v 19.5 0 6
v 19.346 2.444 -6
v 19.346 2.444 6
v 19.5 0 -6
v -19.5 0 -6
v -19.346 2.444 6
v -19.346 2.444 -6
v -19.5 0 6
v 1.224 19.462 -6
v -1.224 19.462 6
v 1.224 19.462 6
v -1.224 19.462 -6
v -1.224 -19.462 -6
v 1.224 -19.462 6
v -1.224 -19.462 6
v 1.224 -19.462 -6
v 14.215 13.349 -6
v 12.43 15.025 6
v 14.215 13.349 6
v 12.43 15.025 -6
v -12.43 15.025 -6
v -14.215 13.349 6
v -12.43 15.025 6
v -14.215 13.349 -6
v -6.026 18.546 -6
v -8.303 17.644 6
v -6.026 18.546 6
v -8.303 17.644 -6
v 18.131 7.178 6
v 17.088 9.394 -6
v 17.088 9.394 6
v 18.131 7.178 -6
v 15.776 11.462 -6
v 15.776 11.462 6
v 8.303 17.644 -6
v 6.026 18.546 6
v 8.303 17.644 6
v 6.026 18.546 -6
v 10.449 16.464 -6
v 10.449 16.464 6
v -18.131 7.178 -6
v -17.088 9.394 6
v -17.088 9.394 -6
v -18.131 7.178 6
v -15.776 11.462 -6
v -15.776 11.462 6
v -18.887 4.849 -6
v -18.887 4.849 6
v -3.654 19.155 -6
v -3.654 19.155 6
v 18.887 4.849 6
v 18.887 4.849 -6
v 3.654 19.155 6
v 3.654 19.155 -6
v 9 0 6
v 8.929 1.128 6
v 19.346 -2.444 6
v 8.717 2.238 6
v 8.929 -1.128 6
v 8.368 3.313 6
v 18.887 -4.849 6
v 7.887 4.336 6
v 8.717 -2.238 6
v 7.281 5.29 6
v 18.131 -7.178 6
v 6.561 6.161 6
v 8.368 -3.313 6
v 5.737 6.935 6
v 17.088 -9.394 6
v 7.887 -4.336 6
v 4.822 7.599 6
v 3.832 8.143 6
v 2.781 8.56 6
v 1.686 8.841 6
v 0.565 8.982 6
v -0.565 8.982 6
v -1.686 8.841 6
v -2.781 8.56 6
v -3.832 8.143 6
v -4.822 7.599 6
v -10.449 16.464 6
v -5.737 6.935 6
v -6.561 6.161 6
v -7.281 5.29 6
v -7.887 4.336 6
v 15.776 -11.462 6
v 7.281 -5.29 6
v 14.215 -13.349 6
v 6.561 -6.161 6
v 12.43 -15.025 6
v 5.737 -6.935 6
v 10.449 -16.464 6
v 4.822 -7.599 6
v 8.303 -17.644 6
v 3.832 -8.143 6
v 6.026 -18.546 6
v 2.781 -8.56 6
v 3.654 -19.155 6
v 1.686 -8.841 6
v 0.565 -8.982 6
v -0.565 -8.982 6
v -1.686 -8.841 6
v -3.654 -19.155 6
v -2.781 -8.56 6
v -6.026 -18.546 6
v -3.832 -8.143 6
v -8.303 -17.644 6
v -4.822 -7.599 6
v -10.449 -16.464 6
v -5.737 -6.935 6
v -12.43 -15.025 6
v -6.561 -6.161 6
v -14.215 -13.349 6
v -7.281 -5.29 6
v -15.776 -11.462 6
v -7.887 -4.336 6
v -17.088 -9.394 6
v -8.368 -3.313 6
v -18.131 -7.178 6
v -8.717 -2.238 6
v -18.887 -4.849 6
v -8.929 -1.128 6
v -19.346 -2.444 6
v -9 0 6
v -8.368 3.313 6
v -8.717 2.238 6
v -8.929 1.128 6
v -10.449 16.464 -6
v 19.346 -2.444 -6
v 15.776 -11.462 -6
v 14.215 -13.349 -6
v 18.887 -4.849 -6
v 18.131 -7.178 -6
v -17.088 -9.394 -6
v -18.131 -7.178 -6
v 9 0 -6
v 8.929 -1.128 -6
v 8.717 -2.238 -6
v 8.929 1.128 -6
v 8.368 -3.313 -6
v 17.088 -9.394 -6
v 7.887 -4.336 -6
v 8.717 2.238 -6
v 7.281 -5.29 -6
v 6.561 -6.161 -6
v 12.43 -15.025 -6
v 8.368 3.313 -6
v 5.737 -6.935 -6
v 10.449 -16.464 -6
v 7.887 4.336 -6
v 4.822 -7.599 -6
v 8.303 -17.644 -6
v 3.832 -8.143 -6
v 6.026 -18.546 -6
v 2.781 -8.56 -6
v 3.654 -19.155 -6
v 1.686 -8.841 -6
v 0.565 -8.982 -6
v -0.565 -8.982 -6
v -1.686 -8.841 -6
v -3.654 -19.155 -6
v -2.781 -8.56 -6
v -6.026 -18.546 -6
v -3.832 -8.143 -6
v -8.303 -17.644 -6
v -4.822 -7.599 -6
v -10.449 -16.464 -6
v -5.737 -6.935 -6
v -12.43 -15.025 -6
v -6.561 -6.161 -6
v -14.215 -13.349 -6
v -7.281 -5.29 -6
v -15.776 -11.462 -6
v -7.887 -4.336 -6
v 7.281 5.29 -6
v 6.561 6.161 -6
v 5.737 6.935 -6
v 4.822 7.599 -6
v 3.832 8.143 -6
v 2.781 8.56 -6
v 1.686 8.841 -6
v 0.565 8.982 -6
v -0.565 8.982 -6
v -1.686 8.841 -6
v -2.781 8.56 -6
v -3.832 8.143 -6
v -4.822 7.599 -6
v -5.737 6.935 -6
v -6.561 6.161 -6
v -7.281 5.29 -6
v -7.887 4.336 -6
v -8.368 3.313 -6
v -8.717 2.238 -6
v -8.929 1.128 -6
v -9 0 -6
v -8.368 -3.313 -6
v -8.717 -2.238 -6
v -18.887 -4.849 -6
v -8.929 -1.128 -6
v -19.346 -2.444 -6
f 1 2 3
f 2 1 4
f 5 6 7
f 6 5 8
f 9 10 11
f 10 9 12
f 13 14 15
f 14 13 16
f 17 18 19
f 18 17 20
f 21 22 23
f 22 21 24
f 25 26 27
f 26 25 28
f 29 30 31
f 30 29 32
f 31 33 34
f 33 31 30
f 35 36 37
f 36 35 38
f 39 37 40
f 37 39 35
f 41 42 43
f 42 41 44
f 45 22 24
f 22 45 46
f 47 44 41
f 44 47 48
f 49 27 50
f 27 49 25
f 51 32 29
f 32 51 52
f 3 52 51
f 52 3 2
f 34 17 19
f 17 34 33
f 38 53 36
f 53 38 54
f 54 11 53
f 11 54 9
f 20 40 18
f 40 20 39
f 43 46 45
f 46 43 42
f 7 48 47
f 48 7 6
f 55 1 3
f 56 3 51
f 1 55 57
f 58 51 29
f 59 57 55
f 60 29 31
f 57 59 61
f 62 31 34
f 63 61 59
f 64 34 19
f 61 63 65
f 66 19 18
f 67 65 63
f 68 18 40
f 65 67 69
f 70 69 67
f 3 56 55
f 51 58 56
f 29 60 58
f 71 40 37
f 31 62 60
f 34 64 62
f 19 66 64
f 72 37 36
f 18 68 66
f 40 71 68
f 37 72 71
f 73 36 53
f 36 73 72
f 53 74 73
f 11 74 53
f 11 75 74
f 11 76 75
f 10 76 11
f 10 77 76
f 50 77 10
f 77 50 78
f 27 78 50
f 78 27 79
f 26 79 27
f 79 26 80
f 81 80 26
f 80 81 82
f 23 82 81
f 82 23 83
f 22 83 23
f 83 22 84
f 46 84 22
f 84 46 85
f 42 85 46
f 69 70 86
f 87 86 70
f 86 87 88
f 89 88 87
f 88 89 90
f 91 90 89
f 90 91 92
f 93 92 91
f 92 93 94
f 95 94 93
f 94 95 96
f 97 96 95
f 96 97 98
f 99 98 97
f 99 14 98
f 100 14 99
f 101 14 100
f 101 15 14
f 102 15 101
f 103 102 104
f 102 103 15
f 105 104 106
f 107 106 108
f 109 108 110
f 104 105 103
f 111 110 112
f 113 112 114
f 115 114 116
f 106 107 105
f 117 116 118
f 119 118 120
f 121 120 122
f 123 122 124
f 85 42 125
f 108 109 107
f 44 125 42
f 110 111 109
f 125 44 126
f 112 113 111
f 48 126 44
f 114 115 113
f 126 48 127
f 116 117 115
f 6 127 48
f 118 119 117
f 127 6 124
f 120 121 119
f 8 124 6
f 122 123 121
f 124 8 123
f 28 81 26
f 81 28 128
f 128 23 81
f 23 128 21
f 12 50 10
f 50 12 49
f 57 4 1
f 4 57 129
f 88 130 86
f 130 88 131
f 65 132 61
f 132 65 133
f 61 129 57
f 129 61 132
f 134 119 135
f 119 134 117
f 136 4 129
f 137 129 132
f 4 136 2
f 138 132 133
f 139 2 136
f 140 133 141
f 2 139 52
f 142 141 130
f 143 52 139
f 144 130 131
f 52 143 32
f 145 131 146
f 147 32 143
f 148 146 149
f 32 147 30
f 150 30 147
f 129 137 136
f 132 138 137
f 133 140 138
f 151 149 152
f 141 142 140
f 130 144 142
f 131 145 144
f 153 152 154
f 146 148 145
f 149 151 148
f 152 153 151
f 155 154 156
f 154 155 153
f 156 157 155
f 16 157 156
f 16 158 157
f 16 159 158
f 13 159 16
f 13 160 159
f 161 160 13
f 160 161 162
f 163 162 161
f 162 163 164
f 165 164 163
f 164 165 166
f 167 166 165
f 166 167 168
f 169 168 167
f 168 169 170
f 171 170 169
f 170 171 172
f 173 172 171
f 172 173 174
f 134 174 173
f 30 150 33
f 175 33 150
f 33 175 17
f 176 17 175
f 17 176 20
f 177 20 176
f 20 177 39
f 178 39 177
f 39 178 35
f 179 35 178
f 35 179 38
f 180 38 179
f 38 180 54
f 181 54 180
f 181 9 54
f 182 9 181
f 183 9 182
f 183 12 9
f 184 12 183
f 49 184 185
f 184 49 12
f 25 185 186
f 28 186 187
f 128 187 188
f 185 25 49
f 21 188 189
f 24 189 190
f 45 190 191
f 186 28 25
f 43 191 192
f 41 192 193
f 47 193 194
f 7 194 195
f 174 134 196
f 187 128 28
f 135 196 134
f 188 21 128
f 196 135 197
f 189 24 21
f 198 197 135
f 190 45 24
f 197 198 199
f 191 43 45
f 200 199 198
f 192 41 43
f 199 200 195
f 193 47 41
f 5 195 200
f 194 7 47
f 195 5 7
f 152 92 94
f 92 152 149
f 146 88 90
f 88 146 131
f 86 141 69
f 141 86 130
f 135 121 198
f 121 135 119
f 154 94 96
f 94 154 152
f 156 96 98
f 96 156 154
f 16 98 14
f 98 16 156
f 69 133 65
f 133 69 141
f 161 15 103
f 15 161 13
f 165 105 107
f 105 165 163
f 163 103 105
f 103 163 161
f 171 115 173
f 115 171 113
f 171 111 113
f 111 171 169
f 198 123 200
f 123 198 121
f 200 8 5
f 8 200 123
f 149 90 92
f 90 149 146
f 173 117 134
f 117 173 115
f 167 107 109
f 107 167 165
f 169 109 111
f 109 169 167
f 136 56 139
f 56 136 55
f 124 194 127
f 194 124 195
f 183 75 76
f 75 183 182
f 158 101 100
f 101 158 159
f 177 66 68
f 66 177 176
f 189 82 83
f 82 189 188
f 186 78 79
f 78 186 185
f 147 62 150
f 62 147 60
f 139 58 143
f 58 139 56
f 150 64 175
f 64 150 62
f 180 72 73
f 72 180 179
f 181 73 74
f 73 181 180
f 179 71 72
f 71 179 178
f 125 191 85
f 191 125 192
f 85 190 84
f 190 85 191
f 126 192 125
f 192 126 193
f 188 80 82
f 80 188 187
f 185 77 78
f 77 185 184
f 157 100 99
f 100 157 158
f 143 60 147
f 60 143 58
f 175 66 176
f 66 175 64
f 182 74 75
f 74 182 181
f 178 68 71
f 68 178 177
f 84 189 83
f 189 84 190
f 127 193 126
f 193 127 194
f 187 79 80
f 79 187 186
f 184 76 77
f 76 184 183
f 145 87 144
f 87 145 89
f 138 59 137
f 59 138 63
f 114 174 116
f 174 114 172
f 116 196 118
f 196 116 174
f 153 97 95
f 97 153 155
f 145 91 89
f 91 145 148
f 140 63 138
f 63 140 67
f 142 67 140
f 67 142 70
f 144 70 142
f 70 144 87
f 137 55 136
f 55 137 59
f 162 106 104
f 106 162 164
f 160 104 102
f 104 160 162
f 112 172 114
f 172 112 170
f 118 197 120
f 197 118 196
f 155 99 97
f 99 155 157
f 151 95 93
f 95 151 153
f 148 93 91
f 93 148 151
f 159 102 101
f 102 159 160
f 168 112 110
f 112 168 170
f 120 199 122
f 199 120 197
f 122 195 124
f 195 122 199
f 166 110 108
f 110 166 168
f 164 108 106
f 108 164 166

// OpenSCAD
$fn = 50;


difference() {
	union() {
		translate(v = [0, 0, -6.0000000000]) {
			cylinder(h = 12, r = 19.5000000000);
		}
	}
	union() {
		translate(v = [0, 0, -100.0000000000]) {
			cylinder(h = 200, r = 9);
		}
	}
}
